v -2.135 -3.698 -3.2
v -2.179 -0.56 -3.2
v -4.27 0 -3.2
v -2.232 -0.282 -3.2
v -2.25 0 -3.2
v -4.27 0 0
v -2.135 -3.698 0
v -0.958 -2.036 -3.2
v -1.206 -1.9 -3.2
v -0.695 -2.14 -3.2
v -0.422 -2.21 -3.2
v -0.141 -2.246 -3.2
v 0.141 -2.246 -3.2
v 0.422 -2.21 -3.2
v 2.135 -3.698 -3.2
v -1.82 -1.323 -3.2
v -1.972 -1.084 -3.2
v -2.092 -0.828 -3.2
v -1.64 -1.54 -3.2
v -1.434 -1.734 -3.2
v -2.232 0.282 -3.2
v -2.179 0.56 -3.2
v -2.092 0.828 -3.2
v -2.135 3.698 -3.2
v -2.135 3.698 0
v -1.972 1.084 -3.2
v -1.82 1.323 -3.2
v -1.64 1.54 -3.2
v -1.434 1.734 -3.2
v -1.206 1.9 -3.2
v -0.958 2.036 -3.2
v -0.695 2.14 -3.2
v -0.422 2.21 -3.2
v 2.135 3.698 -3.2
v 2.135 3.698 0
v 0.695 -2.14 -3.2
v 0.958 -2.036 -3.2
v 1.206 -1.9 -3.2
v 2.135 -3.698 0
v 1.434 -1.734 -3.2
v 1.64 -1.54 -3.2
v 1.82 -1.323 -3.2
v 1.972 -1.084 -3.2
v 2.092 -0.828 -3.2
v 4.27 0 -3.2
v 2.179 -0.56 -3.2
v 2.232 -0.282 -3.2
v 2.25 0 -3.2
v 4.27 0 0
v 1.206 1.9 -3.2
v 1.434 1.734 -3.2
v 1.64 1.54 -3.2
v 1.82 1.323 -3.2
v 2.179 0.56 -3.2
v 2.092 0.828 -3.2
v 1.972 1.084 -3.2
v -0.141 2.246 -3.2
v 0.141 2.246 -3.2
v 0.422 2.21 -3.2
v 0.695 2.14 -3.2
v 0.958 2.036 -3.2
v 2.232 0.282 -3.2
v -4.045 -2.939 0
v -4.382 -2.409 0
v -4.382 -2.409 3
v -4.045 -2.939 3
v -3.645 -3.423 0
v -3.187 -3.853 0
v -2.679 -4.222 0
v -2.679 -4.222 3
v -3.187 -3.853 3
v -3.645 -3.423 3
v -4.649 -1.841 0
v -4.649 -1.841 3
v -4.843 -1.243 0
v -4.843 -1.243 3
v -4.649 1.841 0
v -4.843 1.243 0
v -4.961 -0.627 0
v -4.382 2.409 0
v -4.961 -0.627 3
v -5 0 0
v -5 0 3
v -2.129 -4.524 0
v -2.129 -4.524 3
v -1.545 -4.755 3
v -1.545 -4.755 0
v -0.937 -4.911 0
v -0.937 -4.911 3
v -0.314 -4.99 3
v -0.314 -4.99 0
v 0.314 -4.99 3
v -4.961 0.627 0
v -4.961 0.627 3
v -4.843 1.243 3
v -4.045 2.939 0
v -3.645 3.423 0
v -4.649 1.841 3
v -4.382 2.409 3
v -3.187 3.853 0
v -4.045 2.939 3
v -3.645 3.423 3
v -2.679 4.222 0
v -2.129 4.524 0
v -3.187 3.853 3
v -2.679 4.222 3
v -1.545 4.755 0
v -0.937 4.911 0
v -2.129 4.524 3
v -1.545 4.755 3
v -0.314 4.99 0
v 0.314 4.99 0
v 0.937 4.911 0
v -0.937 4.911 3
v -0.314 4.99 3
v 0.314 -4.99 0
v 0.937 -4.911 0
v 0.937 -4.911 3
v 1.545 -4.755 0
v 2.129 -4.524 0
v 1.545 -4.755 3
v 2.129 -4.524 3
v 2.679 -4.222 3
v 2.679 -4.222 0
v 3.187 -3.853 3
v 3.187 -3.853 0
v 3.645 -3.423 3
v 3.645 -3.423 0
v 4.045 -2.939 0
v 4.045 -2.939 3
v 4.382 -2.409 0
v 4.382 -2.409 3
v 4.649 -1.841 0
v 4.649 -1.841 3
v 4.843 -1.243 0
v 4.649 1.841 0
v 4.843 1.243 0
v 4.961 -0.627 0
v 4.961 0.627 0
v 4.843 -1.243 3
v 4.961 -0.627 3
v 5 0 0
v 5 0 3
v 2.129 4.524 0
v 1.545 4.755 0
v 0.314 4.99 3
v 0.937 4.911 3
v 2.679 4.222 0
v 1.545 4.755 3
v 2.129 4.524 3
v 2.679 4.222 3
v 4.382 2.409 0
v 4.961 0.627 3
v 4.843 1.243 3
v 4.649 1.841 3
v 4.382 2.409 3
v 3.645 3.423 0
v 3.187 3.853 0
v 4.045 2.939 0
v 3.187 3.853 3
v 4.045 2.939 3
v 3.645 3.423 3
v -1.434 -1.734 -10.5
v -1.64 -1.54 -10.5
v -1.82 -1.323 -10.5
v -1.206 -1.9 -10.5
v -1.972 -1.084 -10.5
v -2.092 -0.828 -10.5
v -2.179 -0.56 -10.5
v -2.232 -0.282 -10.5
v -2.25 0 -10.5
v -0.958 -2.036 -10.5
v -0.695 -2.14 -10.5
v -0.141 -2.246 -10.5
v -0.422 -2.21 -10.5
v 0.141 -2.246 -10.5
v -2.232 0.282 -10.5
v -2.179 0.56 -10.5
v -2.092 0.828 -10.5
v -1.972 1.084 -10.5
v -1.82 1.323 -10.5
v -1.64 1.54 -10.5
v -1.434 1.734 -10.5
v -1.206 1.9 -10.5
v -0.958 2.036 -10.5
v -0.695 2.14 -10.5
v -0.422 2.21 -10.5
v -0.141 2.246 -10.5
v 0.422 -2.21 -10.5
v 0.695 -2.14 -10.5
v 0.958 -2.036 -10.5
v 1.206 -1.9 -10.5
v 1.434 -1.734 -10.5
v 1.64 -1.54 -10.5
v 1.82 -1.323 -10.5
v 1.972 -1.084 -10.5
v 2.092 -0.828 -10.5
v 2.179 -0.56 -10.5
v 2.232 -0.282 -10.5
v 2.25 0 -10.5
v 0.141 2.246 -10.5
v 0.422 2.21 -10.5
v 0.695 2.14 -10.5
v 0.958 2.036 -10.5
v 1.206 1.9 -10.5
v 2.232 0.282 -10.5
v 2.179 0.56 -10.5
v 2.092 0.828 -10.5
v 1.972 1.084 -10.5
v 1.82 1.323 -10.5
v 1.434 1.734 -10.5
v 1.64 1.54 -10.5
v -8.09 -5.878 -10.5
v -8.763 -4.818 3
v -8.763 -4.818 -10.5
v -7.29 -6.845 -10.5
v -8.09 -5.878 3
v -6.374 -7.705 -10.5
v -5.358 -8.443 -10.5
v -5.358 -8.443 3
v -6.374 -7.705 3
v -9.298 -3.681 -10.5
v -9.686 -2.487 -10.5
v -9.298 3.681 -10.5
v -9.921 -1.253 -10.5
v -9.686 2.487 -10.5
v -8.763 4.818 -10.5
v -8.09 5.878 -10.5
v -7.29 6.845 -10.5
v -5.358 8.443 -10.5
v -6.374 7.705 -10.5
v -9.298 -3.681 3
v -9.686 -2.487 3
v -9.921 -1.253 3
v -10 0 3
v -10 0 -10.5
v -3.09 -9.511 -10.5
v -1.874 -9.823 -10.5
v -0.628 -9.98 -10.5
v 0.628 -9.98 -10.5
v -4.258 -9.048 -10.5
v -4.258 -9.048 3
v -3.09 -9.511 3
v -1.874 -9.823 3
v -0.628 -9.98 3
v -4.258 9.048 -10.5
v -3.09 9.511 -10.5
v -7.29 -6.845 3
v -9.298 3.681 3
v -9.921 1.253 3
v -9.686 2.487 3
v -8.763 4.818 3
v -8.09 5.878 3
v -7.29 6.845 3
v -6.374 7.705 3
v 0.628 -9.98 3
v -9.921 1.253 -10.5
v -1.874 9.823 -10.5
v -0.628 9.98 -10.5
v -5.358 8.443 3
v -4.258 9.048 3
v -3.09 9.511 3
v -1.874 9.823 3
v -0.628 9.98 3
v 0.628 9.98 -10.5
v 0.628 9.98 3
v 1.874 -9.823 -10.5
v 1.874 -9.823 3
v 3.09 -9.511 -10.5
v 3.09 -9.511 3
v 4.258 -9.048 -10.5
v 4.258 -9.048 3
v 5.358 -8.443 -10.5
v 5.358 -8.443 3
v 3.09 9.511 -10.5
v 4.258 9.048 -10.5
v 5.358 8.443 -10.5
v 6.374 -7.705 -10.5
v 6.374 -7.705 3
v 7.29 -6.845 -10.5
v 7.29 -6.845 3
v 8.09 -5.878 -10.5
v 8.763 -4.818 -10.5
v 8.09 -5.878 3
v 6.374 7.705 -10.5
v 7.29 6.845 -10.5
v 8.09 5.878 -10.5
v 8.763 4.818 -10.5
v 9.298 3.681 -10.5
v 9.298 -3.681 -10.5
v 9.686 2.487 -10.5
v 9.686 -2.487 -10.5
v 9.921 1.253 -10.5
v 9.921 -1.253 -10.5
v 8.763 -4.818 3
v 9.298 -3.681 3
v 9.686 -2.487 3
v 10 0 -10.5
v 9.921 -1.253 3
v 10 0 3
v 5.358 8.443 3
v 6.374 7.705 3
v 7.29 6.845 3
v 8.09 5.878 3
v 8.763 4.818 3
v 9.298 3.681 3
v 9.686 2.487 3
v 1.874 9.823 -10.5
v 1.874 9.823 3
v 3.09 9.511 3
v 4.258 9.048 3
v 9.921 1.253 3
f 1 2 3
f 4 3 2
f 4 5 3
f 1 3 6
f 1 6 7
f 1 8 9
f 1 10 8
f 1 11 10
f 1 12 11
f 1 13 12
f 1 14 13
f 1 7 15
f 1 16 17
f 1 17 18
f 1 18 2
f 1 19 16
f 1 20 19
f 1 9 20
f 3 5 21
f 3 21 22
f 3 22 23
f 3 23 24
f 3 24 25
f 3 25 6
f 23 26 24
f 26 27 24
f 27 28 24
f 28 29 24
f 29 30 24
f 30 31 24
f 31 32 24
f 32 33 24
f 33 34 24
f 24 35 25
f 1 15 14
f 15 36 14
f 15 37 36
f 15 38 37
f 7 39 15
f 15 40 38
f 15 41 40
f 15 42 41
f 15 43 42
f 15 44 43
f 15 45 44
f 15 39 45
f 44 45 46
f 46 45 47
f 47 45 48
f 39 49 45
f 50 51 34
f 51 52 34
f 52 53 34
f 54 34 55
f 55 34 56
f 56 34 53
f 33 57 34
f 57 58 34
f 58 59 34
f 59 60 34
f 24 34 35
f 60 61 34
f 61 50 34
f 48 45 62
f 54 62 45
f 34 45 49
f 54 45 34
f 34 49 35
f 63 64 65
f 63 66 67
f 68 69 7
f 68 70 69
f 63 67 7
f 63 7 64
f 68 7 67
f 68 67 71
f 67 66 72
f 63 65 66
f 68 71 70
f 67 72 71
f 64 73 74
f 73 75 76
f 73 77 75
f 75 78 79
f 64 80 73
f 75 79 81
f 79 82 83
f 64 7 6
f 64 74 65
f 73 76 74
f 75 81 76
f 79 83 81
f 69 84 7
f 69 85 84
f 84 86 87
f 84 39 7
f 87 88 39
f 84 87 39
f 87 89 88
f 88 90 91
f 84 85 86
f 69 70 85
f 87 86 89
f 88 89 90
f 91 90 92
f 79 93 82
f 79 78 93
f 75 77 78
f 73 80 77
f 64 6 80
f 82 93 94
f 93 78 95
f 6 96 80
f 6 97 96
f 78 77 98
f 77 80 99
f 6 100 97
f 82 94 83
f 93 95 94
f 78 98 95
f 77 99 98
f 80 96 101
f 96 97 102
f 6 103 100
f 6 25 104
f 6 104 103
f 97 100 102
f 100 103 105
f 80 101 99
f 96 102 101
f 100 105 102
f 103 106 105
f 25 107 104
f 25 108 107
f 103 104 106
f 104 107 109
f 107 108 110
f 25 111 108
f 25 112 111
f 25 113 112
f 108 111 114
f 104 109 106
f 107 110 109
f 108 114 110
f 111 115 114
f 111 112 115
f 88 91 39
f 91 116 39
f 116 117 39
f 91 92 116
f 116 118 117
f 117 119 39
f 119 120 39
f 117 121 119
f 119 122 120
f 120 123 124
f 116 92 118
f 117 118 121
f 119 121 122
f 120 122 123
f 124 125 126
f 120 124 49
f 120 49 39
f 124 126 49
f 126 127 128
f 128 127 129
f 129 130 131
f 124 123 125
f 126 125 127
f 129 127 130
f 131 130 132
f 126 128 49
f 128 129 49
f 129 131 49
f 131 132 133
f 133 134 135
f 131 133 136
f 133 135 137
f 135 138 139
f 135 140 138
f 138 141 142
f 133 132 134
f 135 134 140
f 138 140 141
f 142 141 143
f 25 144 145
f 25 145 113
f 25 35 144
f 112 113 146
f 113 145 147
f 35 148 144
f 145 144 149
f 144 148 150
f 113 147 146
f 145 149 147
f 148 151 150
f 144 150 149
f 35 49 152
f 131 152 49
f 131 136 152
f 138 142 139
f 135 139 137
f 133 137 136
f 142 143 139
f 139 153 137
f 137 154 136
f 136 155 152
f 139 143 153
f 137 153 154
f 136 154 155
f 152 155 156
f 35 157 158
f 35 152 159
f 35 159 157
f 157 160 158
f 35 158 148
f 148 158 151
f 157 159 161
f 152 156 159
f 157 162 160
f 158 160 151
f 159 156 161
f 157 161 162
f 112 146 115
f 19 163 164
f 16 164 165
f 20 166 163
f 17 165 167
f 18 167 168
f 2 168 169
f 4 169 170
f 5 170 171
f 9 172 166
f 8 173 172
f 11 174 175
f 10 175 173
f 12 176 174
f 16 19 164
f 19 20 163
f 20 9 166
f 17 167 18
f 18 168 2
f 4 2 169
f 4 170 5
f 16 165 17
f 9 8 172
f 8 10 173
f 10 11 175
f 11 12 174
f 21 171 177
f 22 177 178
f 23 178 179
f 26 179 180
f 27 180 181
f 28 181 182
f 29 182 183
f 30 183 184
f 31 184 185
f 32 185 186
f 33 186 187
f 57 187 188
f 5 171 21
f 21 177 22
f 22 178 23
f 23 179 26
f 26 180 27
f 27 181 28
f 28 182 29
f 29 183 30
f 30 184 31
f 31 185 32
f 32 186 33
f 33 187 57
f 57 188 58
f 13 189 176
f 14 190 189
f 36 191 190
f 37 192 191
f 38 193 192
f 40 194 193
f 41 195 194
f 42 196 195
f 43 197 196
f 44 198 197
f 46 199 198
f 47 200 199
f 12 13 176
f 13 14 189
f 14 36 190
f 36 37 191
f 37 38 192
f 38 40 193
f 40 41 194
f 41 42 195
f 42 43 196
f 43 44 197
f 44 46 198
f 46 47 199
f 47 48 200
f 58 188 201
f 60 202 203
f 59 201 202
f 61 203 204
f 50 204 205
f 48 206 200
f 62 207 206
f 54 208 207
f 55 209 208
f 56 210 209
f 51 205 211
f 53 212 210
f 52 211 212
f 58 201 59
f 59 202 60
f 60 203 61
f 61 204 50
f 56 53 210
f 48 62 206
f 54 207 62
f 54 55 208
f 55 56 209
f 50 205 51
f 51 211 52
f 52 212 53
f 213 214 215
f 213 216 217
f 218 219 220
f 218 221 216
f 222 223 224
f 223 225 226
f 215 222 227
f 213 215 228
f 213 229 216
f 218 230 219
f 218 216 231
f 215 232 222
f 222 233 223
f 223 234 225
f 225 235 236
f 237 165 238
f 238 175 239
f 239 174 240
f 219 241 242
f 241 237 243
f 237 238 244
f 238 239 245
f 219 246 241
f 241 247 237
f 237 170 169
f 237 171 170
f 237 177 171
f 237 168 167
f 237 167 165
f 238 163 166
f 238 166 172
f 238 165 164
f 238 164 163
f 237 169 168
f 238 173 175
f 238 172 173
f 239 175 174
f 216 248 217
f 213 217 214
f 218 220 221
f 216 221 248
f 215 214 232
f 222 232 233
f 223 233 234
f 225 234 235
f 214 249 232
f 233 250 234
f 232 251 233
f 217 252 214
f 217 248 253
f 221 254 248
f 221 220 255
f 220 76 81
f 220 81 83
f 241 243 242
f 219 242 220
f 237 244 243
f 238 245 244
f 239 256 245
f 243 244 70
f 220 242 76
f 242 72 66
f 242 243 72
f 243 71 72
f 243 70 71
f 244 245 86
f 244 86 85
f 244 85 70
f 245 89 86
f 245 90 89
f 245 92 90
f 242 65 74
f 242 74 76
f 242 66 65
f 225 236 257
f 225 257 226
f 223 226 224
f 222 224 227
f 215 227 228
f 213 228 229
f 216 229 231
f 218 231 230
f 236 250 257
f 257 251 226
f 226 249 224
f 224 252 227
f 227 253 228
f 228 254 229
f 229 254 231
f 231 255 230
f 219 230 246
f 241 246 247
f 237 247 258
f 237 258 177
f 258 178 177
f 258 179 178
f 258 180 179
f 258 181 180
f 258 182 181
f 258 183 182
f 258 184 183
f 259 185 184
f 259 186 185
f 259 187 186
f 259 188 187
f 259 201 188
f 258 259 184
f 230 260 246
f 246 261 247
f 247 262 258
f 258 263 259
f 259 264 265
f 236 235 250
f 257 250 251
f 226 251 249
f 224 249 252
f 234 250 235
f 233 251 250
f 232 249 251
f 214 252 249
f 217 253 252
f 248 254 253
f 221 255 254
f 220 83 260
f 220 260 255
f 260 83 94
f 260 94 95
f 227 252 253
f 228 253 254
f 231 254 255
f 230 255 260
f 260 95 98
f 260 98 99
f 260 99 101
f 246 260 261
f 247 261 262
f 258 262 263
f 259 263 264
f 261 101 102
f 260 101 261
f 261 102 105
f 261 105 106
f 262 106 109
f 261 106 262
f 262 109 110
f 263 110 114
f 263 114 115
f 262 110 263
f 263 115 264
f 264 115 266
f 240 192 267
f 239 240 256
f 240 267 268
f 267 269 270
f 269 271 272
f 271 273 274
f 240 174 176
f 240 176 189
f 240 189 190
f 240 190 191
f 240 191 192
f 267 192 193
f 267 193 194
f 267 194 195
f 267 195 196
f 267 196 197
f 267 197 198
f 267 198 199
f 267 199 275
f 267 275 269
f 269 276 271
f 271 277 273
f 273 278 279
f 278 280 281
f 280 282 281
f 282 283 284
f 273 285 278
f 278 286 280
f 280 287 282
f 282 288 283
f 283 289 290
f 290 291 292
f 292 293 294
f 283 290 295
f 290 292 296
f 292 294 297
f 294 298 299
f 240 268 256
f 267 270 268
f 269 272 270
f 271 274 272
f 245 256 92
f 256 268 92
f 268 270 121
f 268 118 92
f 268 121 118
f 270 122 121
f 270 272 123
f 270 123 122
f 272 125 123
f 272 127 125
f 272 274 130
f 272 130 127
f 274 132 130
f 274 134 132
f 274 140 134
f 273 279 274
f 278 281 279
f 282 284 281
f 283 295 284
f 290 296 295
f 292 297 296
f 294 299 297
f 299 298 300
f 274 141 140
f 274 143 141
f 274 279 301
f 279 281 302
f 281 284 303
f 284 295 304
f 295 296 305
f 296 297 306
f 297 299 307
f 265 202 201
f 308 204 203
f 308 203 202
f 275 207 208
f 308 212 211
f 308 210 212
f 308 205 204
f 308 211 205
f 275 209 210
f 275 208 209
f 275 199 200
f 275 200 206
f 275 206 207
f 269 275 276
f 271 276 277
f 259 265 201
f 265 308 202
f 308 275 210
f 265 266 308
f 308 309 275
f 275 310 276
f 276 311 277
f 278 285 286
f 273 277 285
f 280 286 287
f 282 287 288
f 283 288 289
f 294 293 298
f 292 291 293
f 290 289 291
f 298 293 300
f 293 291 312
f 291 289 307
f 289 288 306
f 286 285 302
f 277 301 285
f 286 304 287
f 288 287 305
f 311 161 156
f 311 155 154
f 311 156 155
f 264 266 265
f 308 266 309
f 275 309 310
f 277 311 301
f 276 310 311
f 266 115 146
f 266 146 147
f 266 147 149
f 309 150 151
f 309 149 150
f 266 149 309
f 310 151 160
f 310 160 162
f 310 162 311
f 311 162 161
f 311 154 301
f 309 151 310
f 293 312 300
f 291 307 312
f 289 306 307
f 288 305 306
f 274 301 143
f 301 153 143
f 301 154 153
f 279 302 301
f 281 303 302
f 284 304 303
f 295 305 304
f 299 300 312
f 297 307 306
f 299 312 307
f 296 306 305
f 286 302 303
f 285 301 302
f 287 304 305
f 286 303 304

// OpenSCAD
$fn = 50;

difference() {
	union() {
		translate(v = [0, 0, -10.5]) {
			cylinder(h = 13.5, r = 10.0);
		}
	}
	union() {
		translate(v = [0, 0, 0]) {
			rotate(a = [0, 0, 0]) {
				difference() {
					union() {
						translate(v = [0, 0, -3.2]) {
							linear_extrude(height = 3.2) {
								polygon(points = [[4.2698, 0.0], [2.1349000000000005, 3.697755269078796], [-2.134899999999999, 3.6977552690787965], [-4.2698, 5.228996902999369e-16], [-2.134900000000002, -3.6977552690787956], [2.1348999999999974, -3.697755269078798]]);
							}
						}
					}
					union();
				}
			}
		}
		#cylinder(h = 3, r = 5.0);
		#translate(v = [0, 0, -100.0]) {
			cylinder(h = 200, r = 2.25);
		}
	}
}
